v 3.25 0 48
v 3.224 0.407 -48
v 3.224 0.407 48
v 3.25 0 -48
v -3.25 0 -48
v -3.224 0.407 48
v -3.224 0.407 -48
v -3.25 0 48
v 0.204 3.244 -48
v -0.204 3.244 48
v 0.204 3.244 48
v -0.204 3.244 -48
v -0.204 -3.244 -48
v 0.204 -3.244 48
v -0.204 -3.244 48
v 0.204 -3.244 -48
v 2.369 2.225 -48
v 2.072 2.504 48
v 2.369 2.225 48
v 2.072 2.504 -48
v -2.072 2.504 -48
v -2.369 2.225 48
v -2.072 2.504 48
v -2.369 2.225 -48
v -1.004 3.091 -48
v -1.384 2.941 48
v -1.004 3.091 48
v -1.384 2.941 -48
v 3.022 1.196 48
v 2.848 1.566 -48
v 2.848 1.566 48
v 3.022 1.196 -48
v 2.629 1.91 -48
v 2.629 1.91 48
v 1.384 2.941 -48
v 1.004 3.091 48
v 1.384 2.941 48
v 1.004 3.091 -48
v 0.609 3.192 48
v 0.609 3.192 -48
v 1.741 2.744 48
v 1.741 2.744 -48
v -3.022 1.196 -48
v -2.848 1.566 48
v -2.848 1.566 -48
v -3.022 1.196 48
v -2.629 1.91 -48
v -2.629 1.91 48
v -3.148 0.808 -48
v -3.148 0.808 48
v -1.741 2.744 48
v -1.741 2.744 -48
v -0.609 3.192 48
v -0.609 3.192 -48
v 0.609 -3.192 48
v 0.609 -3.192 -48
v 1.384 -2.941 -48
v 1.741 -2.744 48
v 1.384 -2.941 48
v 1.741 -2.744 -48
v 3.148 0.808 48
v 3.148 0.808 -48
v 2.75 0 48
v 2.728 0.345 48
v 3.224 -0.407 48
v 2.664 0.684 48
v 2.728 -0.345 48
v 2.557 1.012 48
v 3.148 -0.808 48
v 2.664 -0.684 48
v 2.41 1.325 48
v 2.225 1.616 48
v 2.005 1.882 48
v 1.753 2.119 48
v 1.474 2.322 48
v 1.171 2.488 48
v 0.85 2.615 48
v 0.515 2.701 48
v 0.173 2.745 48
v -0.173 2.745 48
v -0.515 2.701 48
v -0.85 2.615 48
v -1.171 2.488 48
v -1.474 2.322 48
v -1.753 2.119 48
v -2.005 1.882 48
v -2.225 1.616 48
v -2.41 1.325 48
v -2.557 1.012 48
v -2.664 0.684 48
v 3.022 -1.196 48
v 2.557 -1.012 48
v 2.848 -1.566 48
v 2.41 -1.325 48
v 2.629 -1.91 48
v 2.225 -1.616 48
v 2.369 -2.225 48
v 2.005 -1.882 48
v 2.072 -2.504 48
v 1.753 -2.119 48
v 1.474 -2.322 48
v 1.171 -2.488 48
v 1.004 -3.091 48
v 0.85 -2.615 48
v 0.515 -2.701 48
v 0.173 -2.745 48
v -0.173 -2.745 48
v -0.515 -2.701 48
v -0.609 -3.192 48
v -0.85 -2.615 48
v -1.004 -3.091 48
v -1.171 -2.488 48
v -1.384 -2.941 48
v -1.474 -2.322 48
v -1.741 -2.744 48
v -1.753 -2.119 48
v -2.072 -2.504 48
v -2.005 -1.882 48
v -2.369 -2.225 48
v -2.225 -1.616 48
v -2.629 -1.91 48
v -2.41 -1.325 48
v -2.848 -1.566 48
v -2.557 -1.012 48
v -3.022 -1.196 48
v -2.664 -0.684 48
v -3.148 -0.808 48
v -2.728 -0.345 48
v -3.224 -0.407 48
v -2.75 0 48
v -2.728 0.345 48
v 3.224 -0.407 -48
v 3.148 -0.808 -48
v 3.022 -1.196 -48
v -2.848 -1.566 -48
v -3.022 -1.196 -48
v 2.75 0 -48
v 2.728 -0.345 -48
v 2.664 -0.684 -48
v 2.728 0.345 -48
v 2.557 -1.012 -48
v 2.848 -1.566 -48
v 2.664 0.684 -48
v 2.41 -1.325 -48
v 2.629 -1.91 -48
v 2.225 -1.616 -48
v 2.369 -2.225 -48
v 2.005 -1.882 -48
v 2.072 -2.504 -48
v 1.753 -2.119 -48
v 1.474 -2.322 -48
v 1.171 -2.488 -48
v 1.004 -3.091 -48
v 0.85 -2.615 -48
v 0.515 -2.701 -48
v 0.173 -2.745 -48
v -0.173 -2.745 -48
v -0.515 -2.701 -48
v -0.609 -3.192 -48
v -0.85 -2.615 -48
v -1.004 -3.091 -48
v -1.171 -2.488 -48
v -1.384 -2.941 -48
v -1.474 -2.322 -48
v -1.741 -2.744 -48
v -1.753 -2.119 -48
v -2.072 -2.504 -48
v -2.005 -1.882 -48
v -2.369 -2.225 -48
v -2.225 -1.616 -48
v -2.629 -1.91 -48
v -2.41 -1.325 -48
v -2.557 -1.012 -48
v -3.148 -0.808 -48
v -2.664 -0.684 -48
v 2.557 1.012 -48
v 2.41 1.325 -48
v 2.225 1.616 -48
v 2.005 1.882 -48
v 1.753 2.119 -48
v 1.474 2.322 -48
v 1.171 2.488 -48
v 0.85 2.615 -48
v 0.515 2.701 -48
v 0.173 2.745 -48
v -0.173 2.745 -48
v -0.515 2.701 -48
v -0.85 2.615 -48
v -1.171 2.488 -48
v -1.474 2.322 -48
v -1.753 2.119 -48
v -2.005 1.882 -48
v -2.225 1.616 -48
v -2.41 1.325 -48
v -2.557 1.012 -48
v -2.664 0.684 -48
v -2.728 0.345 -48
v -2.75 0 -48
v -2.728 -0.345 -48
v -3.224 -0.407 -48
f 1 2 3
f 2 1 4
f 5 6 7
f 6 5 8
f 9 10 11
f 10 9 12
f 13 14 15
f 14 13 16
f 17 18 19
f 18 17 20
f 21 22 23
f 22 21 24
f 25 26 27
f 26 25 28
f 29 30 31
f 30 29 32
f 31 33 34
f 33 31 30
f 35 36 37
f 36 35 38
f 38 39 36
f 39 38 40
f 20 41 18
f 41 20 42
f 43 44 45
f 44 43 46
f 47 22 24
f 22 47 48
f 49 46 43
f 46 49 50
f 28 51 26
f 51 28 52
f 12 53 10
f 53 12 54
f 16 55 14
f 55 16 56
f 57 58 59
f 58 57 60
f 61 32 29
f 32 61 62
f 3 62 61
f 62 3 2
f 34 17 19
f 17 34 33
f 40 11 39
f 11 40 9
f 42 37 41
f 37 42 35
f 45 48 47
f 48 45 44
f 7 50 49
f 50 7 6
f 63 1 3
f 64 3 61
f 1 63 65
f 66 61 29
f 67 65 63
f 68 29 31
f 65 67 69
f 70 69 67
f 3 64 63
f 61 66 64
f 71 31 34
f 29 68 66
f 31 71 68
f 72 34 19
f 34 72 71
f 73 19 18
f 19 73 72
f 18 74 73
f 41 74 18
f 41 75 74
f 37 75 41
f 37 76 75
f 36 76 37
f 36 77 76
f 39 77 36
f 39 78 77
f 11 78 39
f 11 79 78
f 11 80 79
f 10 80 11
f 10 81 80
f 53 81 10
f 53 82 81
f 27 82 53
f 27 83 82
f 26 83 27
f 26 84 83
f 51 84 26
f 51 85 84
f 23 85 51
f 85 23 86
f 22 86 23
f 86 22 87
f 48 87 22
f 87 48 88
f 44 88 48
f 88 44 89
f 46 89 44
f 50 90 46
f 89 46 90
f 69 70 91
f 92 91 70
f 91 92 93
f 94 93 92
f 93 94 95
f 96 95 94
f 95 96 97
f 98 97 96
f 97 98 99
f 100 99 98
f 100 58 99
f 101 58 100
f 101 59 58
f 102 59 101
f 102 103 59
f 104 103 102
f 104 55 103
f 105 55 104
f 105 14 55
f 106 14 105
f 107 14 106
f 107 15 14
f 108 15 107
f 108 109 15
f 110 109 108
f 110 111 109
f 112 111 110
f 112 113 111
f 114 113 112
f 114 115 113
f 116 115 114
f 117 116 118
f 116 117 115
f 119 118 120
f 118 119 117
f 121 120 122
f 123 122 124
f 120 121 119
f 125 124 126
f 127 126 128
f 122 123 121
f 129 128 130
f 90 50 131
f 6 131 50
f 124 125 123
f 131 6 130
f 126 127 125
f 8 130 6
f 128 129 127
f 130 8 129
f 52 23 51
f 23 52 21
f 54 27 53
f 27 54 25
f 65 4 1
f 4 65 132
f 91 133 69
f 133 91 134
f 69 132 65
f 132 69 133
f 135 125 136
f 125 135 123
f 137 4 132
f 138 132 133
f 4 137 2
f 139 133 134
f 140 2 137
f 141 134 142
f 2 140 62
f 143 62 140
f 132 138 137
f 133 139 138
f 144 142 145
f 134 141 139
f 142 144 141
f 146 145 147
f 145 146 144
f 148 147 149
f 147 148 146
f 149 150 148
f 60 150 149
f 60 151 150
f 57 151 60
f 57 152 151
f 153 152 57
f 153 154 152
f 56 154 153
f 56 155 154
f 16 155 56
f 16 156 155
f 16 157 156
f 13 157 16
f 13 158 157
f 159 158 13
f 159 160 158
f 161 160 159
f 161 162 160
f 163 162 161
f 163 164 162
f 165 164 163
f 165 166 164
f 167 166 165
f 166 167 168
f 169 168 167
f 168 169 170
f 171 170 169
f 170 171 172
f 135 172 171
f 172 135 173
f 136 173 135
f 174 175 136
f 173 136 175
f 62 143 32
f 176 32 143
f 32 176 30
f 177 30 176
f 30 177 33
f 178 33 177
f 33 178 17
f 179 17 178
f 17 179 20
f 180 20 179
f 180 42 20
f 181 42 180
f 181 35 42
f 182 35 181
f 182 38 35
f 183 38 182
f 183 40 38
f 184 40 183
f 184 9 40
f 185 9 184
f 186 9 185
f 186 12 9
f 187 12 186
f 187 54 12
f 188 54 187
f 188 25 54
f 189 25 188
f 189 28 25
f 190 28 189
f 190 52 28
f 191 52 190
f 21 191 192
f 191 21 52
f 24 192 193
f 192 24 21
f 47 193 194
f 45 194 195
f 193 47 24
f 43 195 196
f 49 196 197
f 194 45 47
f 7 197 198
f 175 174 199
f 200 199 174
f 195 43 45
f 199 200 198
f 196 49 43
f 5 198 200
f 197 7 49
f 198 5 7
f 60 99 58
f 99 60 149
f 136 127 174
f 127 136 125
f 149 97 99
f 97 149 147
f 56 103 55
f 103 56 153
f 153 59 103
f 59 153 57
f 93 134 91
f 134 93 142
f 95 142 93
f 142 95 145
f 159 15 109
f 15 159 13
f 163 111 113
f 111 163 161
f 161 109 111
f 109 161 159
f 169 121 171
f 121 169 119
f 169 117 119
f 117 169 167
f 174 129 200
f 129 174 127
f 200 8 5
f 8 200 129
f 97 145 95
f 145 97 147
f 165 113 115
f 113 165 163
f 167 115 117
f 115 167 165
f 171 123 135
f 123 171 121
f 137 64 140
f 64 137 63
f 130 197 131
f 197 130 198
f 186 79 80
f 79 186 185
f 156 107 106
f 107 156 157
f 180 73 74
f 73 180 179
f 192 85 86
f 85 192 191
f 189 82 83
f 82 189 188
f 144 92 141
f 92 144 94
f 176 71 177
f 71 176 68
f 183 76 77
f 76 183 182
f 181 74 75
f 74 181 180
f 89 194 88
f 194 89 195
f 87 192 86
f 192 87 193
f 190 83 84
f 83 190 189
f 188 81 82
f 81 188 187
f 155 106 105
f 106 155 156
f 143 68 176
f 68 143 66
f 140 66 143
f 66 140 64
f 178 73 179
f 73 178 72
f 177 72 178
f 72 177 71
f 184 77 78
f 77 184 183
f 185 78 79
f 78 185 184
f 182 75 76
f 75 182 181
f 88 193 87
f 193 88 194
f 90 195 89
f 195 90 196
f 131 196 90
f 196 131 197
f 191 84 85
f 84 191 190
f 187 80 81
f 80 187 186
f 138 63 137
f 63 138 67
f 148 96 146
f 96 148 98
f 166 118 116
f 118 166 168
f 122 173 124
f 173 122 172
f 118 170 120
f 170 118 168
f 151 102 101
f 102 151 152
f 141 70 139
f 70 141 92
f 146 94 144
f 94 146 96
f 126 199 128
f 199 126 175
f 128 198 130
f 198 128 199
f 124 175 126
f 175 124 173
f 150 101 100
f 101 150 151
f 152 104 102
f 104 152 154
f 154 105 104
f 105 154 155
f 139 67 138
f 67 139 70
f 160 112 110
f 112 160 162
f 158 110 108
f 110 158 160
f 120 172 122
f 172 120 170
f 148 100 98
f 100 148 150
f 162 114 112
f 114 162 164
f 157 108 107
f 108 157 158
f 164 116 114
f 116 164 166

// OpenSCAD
$fn = 50;


difference() {
	union() {
		translate(v = [0, 0, -48.0000000000]) {
			cylinder(h = 96, r = 3.2500000000);
		}
	}
	union() {
		translate(v = [0, 0, -100.0000000000]) {
			cylinder(h = 200, r = 2.7500000000);
		}
	}
}
